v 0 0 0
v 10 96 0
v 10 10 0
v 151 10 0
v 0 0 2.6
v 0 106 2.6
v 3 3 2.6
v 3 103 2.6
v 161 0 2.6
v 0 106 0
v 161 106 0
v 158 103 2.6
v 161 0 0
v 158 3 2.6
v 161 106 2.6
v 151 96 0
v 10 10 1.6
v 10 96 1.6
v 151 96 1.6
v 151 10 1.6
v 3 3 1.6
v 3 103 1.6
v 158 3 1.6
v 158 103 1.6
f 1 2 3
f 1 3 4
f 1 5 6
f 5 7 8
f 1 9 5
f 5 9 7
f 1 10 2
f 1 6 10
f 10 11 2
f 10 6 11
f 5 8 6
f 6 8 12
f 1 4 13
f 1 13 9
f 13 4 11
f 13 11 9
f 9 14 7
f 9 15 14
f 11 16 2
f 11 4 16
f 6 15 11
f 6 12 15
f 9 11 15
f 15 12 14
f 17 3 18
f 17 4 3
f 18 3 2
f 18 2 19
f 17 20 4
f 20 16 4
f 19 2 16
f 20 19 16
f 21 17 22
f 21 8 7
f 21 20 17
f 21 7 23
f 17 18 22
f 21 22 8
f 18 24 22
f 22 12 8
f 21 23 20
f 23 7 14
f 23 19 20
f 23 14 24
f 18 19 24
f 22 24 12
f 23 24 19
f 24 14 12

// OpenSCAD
// Copyright (c) 2026 Chris Lee and contributors.
// Licensed under the MIT license. See LICENSE file in the project root for details.

epsilon = 0.001;

board_thickness = 1.6;
stencil_dims = [155, 100, 1];
outside = 3;
inside_lip = 10;

module stencil_frame() {
  frame_dims = stencil_dims + [2*outside, 2*outside, board_thickness];
  
  difference() {
    // Frame body
    cube(frame_dims);
    // Cutout for board
    translate([inside_lip, inside_lip, -epsilon]) {
      cube([frame_dims[0]-2*inside_lip, frame_dims[1]-2*inside_lip, frame_dims[2]+1]);
    }
    // Cutout for stencil
    translate([outside, outside,board_thickness]) {
      cube([frame_dims[0]-2*outside, frame_dims[1]-2*outside, frame_dims[2]+1]);
    }
  }
}

stencil_frame();
